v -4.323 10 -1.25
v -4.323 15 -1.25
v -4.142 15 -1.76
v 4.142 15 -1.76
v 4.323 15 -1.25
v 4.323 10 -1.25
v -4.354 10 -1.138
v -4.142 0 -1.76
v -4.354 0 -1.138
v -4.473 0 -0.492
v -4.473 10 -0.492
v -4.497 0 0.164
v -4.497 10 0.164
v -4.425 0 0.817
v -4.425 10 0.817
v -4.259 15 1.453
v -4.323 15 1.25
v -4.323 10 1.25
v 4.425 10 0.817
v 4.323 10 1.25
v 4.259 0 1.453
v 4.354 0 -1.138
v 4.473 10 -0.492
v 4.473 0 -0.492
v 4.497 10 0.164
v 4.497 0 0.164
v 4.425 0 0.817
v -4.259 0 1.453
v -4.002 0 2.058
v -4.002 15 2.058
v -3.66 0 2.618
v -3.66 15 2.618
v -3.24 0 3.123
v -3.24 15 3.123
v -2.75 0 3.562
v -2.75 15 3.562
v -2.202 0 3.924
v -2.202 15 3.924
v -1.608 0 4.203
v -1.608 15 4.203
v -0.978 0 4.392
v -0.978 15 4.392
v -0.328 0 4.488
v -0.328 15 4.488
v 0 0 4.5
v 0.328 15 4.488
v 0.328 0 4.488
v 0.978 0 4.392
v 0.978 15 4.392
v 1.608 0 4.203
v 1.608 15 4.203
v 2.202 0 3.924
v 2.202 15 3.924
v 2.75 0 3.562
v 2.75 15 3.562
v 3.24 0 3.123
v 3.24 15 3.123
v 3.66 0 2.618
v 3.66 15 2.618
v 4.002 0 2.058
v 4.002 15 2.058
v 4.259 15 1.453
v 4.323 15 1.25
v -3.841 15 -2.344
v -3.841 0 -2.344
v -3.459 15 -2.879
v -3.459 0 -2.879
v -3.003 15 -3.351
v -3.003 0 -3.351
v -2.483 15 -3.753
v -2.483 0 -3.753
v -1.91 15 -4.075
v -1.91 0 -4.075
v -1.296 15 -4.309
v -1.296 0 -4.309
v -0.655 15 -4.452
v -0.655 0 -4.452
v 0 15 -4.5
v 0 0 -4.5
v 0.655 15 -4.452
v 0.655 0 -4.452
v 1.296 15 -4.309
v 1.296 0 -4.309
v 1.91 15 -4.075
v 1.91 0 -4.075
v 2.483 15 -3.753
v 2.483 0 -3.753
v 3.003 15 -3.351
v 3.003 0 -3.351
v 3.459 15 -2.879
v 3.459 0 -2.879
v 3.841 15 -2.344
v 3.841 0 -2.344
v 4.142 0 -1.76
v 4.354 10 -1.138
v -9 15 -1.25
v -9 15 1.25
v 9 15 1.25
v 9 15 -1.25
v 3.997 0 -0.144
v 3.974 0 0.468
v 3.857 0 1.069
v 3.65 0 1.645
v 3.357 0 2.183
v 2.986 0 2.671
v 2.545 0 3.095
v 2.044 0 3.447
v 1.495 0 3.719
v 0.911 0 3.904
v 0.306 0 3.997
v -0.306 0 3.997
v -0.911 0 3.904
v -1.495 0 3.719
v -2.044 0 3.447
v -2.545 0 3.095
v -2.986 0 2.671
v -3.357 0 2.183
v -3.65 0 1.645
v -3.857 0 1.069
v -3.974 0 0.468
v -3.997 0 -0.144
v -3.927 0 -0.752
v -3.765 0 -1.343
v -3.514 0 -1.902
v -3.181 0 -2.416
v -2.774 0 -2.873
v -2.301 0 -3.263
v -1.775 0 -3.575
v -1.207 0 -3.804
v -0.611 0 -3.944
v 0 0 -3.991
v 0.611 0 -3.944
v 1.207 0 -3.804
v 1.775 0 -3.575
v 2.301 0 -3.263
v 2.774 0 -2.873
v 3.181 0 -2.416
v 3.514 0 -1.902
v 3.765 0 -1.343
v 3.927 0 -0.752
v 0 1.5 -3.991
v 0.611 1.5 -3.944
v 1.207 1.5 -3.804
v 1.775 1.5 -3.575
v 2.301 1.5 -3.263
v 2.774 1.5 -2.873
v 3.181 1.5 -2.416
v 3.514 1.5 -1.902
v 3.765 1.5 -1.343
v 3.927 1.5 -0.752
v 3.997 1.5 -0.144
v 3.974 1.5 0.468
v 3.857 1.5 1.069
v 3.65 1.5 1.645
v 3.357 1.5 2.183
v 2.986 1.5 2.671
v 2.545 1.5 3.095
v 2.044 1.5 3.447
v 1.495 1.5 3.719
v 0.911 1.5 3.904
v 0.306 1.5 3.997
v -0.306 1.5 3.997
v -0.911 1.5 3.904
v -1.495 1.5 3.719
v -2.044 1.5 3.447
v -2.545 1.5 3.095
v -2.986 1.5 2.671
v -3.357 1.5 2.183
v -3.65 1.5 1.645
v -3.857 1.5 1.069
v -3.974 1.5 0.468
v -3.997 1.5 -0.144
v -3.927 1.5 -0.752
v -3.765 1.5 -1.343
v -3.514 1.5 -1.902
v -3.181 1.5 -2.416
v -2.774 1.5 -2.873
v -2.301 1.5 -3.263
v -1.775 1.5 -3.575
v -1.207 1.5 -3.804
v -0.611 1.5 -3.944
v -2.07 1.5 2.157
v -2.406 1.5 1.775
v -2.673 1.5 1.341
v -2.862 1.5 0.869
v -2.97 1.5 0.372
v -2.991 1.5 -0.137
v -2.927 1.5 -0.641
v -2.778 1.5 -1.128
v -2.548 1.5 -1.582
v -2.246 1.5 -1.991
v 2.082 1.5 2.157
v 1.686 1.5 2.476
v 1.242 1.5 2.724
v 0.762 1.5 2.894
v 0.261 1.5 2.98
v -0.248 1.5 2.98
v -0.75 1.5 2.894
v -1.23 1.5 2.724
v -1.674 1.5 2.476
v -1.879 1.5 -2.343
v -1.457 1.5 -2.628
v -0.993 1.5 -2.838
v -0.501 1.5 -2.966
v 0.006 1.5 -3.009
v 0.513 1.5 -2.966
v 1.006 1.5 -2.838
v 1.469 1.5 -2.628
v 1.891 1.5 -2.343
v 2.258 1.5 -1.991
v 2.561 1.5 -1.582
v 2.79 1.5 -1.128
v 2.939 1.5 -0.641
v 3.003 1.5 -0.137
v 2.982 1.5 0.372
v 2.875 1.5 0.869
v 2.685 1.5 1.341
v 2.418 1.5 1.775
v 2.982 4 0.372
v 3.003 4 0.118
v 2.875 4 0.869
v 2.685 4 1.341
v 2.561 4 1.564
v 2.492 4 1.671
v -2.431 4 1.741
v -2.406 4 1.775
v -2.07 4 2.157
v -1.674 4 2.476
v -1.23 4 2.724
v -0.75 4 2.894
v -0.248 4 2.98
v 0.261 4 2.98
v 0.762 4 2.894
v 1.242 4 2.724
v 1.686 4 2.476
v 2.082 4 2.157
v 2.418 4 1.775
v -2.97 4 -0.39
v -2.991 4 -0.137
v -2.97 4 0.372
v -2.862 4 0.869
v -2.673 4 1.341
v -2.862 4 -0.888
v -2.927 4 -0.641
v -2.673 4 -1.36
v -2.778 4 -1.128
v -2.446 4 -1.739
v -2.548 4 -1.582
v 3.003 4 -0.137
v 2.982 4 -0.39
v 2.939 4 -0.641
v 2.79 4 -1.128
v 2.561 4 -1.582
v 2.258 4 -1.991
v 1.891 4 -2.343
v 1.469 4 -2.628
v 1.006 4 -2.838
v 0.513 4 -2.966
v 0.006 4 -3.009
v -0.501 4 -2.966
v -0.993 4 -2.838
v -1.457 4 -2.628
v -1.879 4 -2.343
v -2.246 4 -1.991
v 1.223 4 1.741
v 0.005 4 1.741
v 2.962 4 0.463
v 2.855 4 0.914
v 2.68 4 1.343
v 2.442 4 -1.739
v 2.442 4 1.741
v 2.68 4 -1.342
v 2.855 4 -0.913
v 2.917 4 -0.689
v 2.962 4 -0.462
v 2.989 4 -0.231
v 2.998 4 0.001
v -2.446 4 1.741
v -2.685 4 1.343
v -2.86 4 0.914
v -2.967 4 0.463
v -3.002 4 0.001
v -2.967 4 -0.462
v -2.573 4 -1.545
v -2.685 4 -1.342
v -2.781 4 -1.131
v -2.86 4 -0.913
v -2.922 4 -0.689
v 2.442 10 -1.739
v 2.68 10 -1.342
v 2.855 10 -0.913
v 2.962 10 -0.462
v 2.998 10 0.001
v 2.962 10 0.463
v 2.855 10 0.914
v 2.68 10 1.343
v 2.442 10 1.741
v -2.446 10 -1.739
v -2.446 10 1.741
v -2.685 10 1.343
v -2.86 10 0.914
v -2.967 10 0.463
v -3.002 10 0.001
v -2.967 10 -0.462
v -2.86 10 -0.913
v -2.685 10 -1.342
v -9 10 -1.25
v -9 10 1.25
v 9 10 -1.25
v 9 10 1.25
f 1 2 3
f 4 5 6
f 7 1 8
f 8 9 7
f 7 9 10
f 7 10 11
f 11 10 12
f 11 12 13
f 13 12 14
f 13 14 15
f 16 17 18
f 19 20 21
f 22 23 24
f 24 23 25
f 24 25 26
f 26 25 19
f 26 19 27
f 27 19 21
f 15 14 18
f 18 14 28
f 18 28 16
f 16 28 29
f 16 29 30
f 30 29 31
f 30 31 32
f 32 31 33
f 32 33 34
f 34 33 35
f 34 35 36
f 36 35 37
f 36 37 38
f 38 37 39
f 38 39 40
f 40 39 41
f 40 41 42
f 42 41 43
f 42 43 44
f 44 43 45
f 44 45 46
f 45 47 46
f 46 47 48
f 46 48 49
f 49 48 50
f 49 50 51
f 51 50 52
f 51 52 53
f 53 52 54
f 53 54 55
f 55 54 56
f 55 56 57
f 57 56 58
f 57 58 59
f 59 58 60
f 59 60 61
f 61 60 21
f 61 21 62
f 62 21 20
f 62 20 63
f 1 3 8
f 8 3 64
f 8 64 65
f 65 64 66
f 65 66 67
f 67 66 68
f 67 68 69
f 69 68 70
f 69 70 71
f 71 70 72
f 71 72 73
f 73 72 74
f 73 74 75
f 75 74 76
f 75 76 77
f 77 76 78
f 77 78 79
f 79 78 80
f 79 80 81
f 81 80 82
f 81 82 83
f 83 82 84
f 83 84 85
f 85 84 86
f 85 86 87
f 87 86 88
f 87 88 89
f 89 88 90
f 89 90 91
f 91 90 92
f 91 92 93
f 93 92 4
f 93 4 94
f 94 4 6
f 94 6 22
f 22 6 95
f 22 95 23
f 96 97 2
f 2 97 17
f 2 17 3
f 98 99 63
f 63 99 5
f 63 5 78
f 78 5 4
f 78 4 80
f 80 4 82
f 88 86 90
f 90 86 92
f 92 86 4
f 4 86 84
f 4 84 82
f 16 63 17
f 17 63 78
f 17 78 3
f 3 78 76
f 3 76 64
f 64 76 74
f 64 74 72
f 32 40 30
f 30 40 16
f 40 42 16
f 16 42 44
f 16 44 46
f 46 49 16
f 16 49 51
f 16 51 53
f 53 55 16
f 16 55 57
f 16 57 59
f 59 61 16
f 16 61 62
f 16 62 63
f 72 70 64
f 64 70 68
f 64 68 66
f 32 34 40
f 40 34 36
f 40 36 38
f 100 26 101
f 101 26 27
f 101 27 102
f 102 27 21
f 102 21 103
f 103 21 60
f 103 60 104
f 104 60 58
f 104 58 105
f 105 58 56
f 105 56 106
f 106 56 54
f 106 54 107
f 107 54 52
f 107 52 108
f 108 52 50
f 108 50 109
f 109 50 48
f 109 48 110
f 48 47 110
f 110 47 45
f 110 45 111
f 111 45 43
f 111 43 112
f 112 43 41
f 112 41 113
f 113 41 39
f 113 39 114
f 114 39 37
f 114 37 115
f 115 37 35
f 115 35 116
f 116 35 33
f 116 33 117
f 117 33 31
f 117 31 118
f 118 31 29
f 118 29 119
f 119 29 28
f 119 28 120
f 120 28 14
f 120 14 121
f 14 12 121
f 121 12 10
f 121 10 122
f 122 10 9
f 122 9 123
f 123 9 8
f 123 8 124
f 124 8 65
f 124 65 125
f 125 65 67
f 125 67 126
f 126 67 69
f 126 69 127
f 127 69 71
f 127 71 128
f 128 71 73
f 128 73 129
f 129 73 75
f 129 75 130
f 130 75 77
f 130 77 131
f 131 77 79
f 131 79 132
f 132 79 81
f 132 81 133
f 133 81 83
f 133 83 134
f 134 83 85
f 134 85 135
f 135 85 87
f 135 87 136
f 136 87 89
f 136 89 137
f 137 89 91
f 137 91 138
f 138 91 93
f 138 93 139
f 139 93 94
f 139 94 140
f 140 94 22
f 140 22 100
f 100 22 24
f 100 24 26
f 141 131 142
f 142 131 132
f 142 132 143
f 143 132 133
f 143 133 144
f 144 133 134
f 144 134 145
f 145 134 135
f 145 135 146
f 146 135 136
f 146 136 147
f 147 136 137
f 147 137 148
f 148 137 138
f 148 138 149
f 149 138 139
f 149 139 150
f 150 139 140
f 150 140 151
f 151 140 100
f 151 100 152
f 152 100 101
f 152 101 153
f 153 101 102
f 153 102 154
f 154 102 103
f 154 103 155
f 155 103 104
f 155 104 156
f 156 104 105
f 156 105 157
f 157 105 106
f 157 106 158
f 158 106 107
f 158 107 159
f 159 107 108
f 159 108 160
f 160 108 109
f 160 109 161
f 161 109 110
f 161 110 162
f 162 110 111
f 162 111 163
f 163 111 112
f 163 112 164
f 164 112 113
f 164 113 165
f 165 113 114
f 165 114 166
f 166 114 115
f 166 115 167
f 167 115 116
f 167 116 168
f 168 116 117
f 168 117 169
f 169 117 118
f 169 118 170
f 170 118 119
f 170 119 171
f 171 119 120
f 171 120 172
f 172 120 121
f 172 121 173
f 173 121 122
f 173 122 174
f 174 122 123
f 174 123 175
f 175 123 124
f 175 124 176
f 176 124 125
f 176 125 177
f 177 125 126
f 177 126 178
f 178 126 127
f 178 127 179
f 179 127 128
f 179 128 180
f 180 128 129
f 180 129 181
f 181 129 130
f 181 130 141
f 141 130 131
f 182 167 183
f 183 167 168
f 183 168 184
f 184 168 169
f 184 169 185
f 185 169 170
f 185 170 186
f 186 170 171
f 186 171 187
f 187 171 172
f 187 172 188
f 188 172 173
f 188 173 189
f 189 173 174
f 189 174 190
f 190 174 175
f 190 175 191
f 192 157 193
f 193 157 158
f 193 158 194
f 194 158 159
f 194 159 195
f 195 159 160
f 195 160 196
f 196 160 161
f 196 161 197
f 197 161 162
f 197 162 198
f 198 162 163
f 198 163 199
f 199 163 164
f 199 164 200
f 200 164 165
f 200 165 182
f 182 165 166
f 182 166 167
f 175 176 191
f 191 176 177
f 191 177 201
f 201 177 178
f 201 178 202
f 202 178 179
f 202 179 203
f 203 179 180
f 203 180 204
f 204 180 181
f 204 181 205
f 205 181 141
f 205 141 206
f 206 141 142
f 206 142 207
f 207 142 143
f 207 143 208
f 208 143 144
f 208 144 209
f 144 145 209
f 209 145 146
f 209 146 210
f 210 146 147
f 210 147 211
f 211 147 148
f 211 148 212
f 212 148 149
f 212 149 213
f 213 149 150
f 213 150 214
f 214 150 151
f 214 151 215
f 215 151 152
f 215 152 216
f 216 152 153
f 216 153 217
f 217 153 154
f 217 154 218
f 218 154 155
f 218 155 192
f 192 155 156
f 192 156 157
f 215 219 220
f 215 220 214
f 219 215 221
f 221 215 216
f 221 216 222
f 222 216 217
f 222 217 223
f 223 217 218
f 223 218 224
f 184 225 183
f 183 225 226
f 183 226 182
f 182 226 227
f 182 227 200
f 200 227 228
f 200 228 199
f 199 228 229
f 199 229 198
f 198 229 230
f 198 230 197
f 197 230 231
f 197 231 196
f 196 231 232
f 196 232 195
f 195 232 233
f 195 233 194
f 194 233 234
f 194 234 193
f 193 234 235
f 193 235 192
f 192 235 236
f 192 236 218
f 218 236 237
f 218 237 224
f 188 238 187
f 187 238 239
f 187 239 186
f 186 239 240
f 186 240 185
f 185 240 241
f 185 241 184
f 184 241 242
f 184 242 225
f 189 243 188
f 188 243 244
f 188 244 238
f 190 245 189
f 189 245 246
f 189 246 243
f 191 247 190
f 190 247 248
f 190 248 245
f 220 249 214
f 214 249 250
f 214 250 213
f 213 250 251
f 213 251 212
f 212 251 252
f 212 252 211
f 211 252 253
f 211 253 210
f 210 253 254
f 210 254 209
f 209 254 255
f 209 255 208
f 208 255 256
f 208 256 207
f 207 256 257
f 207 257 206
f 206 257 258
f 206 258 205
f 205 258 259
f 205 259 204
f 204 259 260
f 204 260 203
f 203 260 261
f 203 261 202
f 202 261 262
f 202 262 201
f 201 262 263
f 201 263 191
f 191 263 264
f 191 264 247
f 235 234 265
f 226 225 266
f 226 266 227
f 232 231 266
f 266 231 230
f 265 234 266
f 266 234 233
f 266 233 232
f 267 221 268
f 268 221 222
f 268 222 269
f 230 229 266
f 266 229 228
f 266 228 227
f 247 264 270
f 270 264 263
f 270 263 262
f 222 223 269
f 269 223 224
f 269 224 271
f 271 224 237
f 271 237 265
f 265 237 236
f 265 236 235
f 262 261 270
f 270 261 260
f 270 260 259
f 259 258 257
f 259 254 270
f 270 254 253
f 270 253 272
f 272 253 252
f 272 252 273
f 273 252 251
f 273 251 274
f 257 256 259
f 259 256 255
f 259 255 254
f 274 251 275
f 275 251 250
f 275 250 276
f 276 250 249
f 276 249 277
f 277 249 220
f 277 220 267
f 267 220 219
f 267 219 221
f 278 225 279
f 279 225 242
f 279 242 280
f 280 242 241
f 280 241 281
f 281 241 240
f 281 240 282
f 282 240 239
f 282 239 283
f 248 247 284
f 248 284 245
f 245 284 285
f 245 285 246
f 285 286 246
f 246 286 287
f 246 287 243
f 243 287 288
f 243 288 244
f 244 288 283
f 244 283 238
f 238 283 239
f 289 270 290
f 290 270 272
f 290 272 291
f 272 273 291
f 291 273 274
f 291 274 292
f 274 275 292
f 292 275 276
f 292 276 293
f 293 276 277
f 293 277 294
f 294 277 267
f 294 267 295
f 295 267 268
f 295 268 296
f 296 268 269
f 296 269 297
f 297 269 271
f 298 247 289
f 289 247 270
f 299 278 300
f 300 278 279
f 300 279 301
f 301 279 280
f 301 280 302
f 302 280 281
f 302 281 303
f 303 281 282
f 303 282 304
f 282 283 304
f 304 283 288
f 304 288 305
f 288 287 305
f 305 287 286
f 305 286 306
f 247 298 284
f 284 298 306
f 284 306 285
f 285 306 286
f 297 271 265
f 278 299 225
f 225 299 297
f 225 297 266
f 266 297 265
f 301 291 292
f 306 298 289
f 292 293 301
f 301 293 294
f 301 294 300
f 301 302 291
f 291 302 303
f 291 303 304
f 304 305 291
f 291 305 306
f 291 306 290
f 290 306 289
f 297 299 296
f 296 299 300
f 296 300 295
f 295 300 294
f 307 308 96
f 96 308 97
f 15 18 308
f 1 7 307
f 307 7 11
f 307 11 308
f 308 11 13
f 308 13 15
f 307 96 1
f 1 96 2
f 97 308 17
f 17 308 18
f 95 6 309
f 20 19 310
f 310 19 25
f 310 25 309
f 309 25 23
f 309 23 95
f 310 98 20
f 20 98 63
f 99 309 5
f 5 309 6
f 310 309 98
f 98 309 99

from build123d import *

# Parameters (mm, degrees)
SKETCH2_R           = 4.5
BOSS_EXTRUDE1_DEPTH = 15
SKETCH4_R           = 4
CUT_EXTRUDE2_DEPTH  = 1.5
SKETCH5_R           = 3
CUT_EXTRUDE3_DEPTH  = 2.5
CUT_EXTRUDE4_DEPTH  = 6
SKETCH7_W           = 18
SKETCH7_H           = 2.5
BOSS_EXTRUDE2_DEPTH = 5


with BuildPart() as part:
    # Sketch2 → Boss-Extrude1 (new body)
    with BuildSketch(Plane(origin=(0, 0, 0), x_dir=(1, 0, 0), z_dir=(0, 1, 0))):
        Circle(SKETCH2_R)
    extrude(amount=BOSS_EXTRUDE1_DEPTH)

    # Sketch4 → Cut-Extrude2 (cut)
    with BuildSketch(Plane.XZ):
        with Locations((0, 0.009200476)):
            Circle(SKETCH4_R)
    extrude(amount=-CUT_EXTRUDE2_DEPTH, mode=Mode.SUBTRACT)

    # Sketch5 → Cut-Extrude3 (cut)
    with BuildSketch(Plane.XZ.offset(-1.5)):
        with Locations((0.006133651, -0.009200476)):
            Circle(SKETCH5_R)
    extrude(amount=-CUT_EXTRUDE3_DEPTH, mode=Mode.SUBTRACT)

    # Sketch6 → Cut-Extrude4 (cut)
    with BuildSketch(Plane.XZ.offset(-4)):
        with BuildLine():
            Line((-2.446188527, -1.739471433), (2.441510318, -1.739471433))
            ThreePointArc((2.441510318, -1.739471433), (2.997660896, 0.000528567), (2.441510318, 1.740528567))
            Line((2.441510318, 1.740528567), (-2.446188527, 1.740528567))
            ThreePointArc((-2.446188527, 1.740528567), (-3.002339104, 0.000528567), (-2.446188527, -1.739471433))
        make_face()
    extrude(amount=-CUT_EXTRUDE4_DEPTH, mode=Mode.SUBTRACT)

    # Sketch7 → Boss-Extrude2 (add)
    with BuildSketch(Plane(origin=(0, 15, 0), x_dir=(1, 0, 0), z_dir=(0, 1, 0))):
        Rectangle(SKETCH7_W, SKETCH7_H)
    extrude(amount=-BOSS_EXTRUDE2_DEPTH)


solid = part.part
